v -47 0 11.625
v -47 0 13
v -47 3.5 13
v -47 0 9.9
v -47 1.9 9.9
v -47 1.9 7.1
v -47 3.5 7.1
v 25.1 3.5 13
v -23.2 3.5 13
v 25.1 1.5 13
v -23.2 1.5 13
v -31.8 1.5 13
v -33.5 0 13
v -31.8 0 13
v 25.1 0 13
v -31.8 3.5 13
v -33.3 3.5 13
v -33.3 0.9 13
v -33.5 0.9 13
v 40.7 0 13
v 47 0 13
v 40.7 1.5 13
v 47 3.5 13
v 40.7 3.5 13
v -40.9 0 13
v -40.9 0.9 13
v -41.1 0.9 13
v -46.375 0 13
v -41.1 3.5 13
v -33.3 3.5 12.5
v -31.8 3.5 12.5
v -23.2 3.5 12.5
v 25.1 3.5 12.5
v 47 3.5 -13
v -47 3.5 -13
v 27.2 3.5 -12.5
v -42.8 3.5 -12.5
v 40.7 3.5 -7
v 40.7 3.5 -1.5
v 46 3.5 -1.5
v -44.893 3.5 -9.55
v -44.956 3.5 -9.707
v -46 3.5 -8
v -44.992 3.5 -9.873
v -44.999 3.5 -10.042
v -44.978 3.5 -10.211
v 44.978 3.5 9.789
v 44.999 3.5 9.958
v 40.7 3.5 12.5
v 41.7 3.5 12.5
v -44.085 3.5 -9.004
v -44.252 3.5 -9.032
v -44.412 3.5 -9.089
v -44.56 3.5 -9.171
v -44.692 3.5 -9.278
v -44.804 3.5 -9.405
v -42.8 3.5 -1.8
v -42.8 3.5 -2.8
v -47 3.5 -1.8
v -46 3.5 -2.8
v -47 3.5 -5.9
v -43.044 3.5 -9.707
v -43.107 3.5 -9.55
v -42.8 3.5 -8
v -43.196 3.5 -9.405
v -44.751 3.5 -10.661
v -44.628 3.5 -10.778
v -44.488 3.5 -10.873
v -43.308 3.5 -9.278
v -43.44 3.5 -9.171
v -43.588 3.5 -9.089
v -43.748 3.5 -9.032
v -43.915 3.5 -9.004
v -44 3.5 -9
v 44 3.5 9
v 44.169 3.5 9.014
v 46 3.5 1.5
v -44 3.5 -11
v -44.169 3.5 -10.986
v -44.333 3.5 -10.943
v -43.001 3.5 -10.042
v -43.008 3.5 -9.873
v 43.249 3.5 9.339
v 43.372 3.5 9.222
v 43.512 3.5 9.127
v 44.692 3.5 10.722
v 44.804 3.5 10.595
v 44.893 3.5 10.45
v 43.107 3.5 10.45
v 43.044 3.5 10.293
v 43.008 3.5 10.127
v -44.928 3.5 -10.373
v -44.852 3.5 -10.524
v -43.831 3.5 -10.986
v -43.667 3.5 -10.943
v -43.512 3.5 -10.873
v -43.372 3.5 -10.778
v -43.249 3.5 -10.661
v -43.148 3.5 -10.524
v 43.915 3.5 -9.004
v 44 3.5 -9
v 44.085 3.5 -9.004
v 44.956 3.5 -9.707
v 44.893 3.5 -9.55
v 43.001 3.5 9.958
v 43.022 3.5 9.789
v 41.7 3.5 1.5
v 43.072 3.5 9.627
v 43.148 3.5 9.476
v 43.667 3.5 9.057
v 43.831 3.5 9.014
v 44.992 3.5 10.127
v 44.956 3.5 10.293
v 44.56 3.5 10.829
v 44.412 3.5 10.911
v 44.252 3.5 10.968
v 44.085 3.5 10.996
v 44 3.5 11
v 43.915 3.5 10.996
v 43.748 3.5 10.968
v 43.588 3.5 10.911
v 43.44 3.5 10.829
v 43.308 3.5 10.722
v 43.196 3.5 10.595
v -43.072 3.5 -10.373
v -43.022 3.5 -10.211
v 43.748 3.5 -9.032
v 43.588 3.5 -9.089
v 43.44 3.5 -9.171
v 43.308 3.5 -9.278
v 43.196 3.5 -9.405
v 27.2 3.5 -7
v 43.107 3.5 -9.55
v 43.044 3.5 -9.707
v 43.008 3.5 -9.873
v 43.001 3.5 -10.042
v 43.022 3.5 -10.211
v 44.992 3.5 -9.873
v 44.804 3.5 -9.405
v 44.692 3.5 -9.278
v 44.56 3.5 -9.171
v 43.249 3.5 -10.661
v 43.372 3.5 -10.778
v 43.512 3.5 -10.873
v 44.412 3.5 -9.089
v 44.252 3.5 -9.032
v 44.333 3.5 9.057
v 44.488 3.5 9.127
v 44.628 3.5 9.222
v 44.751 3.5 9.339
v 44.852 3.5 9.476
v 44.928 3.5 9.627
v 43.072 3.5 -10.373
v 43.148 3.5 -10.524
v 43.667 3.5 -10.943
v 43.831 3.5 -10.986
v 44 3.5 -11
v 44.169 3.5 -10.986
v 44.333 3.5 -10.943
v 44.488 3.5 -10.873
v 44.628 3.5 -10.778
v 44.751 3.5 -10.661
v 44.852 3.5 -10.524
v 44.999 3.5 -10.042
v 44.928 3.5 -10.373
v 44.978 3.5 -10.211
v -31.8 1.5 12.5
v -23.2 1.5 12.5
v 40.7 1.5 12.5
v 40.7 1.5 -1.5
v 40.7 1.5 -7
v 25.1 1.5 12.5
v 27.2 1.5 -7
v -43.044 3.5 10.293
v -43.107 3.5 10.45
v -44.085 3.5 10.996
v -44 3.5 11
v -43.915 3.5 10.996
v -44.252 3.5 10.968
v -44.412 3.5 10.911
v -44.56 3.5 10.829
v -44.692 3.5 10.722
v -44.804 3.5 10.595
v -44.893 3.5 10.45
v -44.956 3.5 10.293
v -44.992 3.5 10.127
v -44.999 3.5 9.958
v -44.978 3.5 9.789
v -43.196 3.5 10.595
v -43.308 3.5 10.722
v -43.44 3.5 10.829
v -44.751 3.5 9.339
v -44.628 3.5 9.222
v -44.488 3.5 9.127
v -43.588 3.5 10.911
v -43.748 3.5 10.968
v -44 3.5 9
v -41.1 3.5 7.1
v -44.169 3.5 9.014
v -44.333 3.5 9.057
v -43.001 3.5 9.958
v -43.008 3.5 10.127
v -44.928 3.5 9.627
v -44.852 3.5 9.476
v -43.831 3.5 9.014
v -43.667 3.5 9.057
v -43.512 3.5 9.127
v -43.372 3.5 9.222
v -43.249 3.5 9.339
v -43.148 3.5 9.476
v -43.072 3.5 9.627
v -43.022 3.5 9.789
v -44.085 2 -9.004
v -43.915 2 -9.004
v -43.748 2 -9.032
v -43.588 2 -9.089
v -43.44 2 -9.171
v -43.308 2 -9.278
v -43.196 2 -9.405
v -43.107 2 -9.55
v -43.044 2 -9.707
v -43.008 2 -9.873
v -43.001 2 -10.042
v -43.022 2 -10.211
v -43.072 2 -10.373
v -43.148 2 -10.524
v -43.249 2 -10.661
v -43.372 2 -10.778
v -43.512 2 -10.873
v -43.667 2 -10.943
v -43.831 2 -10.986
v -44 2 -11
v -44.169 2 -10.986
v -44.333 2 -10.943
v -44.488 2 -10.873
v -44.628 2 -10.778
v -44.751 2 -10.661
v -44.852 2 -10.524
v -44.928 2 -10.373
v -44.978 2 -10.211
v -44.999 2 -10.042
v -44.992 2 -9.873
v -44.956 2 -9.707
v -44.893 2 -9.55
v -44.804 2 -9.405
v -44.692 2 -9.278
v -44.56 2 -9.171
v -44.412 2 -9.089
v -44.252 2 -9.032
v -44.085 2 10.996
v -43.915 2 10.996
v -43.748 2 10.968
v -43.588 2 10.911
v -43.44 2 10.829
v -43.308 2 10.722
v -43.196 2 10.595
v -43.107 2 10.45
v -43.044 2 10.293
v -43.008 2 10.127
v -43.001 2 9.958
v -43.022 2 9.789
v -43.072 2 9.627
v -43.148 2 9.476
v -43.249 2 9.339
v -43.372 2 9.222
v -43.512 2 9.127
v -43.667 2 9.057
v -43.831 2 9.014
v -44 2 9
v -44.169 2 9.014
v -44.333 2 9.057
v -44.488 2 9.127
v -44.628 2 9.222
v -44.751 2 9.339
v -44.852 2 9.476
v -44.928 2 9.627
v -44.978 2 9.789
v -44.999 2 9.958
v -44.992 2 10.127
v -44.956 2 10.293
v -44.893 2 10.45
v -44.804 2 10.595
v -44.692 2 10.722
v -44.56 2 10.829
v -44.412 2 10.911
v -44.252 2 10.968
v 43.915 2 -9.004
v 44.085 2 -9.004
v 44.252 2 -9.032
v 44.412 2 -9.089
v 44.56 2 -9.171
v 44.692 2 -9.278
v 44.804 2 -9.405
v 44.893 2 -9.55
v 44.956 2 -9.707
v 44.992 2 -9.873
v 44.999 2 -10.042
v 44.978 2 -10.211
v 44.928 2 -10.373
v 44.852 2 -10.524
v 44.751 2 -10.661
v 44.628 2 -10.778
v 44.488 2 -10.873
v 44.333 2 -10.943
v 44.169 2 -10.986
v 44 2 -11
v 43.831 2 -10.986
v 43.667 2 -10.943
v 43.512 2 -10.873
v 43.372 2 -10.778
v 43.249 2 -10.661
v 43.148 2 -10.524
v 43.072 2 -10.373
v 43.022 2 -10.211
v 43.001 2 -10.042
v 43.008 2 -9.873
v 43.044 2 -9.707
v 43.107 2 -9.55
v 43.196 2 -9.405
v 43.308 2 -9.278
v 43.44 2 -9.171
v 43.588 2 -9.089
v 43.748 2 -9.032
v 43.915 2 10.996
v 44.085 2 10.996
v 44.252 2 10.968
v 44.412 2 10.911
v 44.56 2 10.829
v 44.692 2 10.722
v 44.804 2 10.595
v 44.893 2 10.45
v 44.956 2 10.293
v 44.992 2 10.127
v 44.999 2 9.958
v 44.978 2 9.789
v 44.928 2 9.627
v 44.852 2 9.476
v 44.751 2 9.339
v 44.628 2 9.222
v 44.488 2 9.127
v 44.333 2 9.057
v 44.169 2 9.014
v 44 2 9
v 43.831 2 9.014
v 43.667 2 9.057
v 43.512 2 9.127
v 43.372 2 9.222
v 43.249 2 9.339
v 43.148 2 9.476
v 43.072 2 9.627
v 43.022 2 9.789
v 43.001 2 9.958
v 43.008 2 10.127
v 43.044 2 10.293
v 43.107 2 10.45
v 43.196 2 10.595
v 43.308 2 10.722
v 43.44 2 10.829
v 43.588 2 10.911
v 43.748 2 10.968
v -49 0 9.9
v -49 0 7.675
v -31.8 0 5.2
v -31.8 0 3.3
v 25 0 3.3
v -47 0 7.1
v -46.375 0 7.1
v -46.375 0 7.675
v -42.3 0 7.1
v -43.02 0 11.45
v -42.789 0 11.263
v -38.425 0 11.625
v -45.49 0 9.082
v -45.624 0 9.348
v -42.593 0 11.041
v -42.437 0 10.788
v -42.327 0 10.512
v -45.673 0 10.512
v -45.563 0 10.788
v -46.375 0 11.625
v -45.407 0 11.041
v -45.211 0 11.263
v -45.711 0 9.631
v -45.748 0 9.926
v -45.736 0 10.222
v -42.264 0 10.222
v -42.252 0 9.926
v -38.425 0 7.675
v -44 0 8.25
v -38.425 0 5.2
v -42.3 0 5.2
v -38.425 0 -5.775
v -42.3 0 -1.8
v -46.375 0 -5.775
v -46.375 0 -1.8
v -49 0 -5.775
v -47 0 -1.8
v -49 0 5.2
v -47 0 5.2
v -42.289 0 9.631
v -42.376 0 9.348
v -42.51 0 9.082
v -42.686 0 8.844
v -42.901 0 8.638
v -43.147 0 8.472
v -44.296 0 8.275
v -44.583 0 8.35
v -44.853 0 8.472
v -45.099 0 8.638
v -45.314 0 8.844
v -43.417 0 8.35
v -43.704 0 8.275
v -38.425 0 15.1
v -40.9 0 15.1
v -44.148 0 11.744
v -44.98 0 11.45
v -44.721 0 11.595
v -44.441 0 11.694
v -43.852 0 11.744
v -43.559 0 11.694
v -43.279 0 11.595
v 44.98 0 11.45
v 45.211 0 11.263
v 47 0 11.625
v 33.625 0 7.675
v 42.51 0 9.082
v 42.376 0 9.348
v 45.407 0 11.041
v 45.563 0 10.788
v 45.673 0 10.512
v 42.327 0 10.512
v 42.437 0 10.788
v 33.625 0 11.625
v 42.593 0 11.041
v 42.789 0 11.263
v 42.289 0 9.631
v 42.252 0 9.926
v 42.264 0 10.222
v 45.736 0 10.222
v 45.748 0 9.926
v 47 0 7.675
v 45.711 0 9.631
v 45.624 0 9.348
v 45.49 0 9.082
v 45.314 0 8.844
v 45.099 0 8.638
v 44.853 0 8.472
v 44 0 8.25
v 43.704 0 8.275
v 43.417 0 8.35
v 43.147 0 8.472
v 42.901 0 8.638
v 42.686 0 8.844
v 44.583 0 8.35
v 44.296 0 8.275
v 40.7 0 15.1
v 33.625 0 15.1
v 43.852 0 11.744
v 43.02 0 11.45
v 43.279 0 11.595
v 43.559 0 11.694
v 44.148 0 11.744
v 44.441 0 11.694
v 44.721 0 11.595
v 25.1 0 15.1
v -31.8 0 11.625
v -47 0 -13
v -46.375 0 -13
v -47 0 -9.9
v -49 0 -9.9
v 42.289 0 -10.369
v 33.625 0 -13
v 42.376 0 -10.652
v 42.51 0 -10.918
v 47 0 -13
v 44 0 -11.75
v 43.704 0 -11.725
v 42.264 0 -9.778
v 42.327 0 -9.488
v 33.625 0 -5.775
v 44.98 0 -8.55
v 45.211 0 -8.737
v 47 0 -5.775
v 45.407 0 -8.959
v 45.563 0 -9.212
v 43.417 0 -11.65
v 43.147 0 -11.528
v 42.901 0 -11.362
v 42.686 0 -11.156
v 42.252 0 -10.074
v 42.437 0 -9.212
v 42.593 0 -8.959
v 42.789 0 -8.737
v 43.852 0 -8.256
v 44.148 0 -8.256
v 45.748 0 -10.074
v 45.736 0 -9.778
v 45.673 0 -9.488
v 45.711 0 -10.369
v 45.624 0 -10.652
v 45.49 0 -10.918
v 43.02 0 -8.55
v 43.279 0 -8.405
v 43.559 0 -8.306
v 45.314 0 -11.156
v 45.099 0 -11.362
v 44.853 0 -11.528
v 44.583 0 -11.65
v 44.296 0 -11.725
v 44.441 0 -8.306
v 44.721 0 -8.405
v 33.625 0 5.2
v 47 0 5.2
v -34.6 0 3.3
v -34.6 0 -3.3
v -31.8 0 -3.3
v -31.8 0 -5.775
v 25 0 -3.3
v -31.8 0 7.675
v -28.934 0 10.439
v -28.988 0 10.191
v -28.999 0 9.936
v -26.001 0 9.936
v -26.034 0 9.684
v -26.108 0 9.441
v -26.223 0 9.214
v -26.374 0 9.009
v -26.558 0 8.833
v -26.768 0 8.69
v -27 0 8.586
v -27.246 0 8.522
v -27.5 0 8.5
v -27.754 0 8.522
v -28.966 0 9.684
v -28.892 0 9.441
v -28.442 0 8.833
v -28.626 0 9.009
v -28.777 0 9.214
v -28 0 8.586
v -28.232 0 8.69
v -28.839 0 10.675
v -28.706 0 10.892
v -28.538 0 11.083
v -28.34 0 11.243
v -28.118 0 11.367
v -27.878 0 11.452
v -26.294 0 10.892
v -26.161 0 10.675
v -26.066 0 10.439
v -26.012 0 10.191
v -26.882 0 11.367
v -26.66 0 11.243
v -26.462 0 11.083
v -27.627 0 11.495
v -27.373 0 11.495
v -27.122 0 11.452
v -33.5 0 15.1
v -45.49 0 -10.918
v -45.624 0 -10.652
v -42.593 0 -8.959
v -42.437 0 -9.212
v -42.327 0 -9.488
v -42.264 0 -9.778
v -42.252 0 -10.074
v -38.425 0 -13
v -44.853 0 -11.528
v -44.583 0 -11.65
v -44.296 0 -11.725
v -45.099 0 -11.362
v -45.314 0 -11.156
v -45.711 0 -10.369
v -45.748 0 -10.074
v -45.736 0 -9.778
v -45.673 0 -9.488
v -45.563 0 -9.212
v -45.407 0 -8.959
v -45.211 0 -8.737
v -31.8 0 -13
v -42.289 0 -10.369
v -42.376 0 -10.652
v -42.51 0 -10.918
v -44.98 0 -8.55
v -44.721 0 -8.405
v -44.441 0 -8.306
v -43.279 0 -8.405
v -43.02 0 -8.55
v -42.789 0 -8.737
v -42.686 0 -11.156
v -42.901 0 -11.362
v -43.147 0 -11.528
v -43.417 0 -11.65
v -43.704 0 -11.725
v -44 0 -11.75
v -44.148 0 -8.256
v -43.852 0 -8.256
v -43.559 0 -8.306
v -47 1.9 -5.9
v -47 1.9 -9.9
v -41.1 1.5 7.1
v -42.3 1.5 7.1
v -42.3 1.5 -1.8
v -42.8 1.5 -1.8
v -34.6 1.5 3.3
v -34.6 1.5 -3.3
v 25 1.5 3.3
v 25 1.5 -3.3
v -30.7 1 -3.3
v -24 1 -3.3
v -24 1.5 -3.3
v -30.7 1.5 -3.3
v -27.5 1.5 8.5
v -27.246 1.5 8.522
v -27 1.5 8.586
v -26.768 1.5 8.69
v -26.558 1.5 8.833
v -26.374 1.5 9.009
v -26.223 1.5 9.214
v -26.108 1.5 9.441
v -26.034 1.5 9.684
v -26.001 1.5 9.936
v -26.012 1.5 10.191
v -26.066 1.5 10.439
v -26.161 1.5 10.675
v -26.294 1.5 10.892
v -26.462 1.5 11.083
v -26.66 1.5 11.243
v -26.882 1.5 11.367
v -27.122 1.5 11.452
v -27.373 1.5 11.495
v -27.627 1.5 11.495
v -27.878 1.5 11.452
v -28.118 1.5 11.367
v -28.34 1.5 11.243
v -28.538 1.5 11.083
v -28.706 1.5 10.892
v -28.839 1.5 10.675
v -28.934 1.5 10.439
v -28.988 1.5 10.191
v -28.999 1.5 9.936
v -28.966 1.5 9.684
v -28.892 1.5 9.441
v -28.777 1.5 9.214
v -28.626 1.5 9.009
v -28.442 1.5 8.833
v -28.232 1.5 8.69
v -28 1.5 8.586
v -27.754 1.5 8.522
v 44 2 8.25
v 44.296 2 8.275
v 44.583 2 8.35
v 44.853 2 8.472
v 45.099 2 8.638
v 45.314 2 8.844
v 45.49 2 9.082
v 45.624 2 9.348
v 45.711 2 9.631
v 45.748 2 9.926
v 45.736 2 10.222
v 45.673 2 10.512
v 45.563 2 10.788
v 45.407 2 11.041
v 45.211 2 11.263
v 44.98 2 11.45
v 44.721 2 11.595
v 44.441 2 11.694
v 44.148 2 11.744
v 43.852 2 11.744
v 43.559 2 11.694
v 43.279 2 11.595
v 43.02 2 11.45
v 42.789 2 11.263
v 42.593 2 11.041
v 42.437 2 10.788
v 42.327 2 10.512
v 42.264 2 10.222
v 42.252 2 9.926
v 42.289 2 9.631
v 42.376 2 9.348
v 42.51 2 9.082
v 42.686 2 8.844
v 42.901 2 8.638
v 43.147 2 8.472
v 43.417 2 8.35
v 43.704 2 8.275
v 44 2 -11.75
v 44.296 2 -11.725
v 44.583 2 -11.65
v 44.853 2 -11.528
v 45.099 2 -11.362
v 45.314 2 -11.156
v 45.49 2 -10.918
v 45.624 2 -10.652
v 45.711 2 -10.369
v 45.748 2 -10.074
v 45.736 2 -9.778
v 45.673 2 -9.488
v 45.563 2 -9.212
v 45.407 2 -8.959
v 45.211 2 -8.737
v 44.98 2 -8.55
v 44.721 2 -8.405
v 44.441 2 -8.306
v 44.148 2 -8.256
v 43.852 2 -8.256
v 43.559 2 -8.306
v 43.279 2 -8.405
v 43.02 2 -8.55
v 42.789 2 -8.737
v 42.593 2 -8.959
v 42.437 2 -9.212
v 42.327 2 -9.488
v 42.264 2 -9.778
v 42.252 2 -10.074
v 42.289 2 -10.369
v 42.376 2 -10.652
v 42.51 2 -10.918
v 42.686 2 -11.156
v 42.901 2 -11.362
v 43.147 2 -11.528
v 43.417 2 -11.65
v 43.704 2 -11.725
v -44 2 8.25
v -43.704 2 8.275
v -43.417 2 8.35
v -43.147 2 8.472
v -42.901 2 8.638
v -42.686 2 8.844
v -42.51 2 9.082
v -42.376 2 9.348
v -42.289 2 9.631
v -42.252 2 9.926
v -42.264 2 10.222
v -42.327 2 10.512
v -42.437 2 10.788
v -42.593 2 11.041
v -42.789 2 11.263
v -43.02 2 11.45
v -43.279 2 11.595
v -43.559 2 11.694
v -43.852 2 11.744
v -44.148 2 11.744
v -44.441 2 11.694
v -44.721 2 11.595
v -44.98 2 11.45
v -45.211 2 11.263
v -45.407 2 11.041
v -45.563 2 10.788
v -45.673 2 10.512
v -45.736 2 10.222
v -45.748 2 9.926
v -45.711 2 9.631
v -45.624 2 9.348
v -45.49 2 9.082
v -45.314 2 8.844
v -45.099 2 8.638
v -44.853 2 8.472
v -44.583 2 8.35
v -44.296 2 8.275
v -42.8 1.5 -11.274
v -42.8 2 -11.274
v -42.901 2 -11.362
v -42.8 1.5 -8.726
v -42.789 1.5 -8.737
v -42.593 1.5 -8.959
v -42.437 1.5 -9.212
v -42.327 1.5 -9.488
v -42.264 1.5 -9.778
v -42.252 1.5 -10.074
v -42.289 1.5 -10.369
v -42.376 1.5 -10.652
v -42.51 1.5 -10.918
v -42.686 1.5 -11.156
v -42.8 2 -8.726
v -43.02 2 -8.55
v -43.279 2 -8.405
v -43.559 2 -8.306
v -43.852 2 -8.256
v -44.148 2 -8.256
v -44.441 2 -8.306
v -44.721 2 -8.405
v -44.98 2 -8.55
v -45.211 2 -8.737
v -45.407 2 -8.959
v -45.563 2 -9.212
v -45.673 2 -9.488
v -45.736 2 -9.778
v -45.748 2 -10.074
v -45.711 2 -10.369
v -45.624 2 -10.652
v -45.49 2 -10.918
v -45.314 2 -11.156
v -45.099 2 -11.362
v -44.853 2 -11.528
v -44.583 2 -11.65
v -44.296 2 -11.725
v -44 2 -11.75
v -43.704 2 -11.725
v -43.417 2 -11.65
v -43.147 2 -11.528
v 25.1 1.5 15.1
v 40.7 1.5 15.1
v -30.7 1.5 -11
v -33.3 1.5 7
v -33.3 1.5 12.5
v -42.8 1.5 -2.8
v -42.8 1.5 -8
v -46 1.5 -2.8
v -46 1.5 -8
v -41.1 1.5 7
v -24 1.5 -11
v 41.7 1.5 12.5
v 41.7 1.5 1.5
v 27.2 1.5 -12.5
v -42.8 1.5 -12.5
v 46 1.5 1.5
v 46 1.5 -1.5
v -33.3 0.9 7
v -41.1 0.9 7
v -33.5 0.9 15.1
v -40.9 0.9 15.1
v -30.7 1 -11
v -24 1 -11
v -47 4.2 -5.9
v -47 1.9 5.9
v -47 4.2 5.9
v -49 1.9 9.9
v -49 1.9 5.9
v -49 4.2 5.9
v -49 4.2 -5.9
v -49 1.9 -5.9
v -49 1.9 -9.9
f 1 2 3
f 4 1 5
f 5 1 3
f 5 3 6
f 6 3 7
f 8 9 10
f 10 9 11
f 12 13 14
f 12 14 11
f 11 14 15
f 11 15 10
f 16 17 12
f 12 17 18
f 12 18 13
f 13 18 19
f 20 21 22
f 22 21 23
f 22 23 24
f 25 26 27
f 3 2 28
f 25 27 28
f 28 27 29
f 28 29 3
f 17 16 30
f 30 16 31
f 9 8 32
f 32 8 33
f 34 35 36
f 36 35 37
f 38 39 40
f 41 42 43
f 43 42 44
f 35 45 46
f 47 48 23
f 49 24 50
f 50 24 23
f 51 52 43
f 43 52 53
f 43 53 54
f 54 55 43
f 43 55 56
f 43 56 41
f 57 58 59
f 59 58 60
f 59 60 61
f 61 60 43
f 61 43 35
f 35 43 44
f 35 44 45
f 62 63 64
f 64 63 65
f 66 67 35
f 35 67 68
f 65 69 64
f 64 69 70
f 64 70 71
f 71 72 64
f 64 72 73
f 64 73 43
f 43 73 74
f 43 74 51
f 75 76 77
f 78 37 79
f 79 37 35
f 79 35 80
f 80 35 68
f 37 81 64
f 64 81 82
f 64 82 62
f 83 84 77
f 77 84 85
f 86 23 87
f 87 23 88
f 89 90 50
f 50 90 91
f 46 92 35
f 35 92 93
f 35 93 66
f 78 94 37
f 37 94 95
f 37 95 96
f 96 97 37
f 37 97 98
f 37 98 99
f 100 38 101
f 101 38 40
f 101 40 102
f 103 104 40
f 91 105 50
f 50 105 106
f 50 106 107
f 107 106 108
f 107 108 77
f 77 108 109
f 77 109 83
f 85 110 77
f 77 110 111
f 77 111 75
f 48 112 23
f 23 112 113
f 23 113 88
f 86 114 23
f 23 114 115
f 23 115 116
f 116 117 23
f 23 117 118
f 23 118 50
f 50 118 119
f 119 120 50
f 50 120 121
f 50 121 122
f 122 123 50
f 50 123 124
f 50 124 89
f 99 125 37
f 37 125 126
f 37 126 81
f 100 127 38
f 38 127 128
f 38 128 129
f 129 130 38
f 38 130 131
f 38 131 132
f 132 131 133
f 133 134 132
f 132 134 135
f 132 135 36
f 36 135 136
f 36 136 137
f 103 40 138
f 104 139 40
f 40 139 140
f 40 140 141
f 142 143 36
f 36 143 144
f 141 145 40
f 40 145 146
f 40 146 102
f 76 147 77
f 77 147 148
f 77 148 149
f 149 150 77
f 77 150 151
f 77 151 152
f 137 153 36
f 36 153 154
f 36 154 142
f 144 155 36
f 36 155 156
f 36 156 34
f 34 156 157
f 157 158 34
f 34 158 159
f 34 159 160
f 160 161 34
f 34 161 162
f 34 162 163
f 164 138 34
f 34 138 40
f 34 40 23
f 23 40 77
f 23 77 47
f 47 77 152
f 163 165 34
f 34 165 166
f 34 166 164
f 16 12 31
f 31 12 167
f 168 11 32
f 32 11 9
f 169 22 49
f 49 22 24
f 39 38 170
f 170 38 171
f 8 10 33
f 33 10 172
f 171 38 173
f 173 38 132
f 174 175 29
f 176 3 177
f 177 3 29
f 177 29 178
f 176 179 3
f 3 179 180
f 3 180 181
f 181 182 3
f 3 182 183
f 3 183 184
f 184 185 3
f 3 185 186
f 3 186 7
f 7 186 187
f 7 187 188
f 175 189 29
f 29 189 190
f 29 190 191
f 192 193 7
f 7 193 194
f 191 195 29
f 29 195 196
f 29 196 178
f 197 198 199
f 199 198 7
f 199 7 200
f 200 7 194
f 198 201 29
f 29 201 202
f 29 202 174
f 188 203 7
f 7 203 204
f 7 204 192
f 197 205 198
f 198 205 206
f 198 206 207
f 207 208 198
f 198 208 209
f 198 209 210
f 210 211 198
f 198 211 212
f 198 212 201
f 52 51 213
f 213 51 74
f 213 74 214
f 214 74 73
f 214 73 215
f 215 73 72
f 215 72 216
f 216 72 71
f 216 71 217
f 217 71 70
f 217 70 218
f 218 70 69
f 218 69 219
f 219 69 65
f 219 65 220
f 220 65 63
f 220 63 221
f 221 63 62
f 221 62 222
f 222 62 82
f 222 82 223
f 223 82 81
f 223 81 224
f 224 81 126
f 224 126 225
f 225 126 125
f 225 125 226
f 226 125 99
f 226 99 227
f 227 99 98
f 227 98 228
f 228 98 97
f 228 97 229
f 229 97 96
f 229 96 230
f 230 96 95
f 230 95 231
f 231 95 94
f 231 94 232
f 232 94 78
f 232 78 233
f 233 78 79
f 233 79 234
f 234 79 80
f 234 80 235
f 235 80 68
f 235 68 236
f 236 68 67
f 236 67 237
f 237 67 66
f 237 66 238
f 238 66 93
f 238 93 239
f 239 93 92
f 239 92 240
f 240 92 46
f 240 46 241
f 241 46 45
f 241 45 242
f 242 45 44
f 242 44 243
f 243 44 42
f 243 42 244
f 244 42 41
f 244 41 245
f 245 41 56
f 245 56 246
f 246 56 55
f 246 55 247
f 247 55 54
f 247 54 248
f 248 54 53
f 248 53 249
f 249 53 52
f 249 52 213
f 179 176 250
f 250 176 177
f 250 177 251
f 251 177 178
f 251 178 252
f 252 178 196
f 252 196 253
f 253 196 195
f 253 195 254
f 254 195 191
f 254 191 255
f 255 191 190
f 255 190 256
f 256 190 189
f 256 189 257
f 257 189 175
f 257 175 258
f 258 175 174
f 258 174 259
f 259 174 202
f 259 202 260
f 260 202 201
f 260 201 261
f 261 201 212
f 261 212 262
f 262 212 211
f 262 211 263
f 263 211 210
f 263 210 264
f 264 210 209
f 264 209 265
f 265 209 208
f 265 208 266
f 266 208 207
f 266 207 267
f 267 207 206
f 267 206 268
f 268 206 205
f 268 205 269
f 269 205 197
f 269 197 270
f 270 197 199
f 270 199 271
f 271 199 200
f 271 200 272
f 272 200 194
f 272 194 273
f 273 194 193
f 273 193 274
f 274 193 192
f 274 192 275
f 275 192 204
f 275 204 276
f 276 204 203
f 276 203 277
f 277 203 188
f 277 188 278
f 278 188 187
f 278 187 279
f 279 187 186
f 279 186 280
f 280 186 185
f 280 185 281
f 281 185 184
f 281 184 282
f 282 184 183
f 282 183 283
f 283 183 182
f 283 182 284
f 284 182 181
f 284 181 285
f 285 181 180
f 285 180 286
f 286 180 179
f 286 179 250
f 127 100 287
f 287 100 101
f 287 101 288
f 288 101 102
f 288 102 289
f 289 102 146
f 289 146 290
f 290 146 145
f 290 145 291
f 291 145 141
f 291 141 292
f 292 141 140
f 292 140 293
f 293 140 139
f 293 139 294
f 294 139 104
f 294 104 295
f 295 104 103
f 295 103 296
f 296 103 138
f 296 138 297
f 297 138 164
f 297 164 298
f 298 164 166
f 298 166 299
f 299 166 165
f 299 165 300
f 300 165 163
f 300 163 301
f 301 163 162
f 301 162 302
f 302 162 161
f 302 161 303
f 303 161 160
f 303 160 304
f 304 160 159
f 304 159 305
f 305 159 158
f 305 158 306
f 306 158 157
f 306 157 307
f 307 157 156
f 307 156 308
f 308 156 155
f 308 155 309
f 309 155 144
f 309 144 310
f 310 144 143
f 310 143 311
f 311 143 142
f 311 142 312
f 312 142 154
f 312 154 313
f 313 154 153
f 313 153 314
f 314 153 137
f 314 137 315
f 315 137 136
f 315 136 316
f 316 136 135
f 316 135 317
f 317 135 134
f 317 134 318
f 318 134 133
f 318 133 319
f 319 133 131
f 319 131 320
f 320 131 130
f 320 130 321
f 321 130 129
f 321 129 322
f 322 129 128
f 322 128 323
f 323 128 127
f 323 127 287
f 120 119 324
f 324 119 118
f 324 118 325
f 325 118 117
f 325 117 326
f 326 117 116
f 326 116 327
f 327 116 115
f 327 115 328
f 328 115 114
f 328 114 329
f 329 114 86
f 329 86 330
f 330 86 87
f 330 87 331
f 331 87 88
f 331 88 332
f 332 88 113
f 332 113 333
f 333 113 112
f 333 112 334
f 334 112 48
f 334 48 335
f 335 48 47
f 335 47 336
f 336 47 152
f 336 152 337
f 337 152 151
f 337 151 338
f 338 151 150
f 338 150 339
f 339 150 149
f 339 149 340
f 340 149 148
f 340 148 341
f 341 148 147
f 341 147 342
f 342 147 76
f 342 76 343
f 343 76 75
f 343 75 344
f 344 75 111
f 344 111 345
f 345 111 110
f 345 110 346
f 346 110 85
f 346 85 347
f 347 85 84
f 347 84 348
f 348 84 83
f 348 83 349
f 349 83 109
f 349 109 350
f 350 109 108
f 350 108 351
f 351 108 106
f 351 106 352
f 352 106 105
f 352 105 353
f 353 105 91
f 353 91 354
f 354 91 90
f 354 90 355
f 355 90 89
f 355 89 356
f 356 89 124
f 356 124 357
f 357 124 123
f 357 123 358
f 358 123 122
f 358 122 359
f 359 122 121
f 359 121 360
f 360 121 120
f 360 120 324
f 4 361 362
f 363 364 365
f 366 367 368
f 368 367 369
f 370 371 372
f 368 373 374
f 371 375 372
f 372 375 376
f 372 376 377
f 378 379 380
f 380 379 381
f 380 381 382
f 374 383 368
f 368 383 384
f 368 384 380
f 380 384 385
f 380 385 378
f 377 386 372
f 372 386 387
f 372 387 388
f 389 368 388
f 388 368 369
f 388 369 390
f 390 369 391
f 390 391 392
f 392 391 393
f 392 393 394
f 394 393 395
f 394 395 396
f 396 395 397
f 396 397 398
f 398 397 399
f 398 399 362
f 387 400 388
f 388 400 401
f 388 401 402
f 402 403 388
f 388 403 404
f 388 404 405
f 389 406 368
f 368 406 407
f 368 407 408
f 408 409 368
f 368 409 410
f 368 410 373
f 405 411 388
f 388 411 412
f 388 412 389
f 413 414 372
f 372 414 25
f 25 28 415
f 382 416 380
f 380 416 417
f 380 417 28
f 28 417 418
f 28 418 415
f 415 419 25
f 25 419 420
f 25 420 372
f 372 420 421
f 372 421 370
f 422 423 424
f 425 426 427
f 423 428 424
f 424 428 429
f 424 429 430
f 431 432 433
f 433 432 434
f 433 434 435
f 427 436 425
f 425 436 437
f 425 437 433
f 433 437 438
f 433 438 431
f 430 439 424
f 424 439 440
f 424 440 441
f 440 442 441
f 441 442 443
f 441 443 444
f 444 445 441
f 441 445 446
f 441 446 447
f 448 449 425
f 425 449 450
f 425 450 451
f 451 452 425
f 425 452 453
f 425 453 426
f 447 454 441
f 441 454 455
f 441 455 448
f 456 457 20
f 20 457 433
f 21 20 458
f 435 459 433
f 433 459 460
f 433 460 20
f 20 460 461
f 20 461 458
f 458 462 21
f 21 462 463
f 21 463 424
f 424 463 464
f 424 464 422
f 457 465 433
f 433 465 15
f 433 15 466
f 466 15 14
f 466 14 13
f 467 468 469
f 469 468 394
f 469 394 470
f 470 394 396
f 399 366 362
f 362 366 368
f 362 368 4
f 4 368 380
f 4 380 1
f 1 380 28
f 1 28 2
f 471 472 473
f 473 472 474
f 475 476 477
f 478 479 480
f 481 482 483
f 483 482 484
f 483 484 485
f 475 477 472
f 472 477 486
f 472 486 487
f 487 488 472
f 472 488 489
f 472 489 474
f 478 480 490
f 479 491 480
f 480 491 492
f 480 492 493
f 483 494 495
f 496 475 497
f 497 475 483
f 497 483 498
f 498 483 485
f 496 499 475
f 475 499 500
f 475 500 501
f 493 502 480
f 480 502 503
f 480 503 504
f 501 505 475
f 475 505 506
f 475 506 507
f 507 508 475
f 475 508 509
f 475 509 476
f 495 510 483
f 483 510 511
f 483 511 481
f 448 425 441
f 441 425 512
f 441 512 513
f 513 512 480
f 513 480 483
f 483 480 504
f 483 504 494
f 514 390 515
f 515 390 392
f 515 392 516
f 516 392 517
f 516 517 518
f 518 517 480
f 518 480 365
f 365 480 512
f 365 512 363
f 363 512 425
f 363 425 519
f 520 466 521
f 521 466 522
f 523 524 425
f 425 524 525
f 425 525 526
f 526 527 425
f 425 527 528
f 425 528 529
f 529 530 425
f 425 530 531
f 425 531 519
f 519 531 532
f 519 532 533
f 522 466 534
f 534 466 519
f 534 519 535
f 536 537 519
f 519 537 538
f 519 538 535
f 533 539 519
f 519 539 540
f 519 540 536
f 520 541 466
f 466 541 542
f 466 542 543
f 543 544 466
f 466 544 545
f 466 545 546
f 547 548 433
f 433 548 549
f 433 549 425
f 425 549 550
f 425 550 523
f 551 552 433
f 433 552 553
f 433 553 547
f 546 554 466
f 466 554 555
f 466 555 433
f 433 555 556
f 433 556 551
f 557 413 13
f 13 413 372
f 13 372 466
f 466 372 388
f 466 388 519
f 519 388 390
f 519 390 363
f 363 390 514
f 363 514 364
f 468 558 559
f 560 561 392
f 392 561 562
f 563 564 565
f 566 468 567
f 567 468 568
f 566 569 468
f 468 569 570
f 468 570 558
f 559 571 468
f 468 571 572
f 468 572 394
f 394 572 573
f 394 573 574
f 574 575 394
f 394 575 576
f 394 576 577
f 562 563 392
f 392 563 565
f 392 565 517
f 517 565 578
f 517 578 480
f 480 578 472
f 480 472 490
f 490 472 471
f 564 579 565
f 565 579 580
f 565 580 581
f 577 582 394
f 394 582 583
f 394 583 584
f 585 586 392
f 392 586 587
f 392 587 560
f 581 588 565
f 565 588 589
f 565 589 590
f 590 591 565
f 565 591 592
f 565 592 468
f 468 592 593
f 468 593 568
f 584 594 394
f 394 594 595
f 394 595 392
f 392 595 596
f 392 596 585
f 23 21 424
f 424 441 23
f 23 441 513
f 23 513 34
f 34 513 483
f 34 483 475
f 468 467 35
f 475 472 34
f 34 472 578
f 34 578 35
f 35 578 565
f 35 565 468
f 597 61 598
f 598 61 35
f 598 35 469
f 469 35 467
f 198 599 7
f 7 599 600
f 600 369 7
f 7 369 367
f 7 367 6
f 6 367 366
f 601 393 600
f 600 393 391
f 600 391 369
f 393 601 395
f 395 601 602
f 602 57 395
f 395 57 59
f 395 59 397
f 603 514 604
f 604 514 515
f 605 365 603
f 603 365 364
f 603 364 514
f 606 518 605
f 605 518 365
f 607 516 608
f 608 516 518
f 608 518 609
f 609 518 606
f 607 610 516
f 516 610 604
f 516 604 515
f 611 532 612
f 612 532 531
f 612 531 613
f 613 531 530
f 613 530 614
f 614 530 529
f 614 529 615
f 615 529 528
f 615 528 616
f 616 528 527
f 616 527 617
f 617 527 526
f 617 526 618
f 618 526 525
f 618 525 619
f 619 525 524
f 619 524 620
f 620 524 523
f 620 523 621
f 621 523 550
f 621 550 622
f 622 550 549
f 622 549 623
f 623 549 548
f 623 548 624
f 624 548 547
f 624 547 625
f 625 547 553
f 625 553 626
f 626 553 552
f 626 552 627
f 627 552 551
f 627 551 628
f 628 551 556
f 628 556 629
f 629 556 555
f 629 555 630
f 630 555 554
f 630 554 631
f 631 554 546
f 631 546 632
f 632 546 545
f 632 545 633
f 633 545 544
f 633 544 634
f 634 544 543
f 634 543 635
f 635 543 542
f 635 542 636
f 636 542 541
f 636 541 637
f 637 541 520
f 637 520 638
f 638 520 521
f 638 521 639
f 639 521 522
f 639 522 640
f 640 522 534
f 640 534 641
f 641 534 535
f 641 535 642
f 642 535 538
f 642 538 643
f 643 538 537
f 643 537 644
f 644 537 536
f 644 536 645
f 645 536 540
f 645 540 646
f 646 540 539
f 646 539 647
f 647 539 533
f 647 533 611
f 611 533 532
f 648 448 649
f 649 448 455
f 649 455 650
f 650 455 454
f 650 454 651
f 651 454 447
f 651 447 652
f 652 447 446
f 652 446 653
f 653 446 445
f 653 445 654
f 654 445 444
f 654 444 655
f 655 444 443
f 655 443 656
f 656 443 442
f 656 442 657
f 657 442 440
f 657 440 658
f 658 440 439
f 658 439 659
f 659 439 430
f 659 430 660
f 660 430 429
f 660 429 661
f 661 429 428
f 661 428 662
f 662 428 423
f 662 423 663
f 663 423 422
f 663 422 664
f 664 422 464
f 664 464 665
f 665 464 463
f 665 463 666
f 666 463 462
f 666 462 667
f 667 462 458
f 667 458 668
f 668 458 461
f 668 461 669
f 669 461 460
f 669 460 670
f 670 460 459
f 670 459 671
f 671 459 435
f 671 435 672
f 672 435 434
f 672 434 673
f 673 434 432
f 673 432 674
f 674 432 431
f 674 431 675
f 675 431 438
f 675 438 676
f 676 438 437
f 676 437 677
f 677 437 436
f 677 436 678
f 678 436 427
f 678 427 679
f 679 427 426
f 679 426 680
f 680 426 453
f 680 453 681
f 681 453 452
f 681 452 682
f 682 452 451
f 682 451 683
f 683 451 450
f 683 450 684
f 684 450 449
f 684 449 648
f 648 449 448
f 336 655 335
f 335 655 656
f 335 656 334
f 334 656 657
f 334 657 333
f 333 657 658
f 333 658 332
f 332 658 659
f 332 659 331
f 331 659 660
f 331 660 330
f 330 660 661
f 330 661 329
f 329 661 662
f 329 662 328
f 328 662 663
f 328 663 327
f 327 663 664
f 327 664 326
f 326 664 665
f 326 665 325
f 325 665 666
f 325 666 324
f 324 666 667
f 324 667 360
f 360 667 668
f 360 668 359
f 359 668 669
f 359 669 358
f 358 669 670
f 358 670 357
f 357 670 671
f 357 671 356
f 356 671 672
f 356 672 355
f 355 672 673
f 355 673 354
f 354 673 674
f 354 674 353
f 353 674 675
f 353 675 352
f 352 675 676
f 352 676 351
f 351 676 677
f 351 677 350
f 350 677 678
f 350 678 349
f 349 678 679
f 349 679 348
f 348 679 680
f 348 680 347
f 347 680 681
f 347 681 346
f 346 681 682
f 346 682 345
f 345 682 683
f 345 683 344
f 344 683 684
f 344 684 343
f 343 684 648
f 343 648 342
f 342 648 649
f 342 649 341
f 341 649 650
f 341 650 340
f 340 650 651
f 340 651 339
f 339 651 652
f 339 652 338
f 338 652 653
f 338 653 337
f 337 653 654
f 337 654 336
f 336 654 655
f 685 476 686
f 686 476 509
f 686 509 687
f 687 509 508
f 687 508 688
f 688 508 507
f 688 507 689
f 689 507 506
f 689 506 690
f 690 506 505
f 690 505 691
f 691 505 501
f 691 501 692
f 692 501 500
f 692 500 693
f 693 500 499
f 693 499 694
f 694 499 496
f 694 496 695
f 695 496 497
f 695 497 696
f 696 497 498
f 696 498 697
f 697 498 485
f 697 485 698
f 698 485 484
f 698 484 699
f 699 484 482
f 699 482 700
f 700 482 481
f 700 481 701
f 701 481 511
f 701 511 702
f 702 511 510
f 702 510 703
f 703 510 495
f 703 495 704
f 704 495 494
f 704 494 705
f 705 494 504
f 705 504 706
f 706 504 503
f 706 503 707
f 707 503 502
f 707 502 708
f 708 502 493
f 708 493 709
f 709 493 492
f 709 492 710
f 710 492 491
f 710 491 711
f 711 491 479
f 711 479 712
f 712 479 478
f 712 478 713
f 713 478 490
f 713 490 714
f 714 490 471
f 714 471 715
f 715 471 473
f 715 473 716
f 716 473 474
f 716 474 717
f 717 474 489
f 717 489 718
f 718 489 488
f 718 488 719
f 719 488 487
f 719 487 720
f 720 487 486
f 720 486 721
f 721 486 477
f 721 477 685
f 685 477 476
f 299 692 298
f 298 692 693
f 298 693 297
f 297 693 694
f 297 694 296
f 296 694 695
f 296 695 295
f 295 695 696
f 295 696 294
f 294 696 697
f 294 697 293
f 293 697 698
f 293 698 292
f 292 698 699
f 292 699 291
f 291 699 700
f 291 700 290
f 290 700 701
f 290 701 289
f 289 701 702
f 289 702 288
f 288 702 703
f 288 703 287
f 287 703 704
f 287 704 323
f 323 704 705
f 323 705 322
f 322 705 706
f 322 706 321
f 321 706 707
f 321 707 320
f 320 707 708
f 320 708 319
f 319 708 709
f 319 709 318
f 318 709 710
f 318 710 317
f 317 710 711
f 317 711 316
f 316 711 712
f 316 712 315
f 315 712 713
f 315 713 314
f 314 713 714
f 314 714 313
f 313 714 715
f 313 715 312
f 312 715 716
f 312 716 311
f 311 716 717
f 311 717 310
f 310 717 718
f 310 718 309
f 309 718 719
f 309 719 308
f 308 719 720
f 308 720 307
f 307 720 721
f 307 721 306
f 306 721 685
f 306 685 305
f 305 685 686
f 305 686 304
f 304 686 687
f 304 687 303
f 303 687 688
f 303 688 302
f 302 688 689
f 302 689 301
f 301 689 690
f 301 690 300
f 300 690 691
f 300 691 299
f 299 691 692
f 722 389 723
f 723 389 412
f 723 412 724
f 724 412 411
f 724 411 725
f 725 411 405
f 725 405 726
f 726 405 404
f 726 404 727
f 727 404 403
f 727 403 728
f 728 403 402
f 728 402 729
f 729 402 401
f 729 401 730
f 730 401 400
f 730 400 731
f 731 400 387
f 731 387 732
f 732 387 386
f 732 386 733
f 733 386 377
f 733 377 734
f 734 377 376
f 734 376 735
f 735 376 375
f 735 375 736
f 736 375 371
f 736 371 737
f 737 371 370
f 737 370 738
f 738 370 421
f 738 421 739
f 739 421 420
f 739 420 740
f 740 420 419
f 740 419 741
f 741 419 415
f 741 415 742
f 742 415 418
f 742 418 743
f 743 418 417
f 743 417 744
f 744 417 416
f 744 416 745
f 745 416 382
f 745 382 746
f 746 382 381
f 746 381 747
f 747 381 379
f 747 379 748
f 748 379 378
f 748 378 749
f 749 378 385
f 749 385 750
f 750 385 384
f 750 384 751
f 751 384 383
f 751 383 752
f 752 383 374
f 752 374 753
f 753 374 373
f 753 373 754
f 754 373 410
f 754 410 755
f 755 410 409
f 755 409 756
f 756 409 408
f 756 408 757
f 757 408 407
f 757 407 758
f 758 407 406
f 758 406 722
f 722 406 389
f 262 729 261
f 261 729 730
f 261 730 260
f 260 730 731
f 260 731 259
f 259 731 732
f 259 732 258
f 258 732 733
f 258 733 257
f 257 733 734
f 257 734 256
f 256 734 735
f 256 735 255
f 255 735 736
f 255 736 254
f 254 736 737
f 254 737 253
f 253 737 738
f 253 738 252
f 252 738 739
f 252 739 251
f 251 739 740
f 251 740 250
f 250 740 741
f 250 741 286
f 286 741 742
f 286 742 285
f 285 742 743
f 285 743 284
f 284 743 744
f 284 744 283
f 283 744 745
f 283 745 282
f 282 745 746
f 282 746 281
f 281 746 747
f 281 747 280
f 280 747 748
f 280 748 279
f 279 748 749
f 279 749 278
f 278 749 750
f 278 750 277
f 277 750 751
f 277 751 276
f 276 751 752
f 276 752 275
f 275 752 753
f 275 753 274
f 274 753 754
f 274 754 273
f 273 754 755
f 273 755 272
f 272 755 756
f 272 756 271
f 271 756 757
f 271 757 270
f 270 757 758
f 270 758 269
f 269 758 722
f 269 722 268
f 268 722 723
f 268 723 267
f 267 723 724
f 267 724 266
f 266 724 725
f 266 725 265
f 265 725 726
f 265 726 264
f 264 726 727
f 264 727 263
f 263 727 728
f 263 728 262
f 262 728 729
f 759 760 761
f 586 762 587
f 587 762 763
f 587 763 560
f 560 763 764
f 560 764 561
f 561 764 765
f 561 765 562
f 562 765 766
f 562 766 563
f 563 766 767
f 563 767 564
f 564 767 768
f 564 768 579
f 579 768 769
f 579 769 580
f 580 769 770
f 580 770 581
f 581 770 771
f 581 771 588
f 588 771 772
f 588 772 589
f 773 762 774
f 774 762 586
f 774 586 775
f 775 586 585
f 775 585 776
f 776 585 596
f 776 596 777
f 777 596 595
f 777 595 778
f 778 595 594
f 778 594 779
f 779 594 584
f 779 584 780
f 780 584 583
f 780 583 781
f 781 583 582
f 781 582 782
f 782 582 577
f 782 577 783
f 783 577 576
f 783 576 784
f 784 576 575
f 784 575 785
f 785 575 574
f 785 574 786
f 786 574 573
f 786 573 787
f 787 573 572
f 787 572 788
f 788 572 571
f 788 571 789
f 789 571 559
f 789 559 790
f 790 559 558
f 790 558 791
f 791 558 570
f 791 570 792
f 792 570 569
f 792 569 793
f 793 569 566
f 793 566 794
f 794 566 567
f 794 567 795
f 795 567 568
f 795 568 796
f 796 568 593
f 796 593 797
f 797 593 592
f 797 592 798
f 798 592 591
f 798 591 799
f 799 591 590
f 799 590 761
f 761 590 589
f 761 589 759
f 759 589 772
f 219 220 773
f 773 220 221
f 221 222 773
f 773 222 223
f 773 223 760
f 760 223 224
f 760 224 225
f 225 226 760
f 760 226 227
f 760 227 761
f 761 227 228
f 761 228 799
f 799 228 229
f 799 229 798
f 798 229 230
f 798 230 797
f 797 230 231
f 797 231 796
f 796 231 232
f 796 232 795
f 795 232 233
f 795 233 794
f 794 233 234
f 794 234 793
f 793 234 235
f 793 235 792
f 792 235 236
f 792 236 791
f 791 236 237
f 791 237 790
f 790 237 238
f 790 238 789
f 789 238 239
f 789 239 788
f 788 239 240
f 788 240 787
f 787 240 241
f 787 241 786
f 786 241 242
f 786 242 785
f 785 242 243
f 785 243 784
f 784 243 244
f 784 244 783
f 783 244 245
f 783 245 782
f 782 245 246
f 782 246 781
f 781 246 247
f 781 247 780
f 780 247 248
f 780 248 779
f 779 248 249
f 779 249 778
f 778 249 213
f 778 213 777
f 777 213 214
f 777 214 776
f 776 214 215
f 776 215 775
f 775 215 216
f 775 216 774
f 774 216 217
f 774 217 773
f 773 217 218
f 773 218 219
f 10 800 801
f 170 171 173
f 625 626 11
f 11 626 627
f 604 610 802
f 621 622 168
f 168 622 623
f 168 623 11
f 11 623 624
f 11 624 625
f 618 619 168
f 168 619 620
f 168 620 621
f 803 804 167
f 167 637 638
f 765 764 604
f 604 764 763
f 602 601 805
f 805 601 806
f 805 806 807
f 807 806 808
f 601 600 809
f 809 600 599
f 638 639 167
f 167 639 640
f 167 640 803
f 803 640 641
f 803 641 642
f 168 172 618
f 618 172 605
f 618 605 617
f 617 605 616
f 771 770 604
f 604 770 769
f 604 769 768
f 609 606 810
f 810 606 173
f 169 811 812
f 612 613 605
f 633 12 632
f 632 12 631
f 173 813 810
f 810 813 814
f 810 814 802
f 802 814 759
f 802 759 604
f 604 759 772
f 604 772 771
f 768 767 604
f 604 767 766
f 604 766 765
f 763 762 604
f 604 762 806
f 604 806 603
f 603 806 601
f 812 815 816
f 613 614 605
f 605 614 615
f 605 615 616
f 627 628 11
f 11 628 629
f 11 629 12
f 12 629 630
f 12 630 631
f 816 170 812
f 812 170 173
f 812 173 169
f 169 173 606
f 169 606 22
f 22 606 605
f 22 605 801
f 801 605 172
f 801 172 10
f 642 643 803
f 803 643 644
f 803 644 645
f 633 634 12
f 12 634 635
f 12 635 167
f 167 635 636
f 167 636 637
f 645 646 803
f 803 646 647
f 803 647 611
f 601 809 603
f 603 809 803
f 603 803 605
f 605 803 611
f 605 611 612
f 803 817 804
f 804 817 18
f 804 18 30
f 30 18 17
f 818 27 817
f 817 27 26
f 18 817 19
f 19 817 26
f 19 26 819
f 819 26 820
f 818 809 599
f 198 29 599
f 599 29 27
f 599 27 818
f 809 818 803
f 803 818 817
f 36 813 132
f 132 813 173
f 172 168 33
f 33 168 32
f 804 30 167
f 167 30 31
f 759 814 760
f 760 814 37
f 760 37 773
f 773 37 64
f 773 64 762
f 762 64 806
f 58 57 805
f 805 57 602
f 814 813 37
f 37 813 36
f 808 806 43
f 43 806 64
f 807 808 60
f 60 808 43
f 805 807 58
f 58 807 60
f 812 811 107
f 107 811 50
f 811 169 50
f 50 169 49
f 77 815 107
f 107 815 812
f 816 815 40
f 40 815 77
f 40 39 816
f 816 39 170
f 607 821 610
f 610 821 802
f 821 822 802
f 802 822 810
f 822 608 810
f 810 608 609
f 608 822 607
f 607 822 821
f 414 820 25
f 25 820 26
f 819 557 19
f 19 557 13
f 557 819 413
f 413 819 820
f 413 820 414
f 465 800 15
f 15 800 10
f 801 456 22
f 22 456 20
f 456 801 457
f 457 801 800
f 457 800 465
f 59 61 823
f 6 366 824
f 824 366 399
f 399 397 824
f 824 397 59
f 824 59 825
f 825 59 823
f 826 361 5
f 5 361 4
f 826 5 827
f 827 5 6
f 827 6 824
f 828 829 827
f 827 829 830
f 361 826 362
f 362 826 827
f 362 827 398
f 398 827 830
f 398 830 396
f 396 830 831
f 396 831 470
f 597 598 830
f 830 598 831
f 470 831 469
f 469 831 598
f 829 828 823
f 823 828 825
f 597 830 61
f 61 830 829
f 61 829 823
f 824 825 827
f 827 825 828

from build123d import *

# Parameters (mm, degrees)
SKETCH_1_W           = 94
SKETCH_1_H           = 26
SKETCH_1_R           = 1
EXTRUDE_1_DEPTH      = 3.5
SKETCH_2_W           = 4.7
SKETCH_2_H           = 8.9
SKETCH_2_W_2         = 59.6
SKETCH_2_H_2         = 6.6
CUT_EXTRUDE_1_DEPTH  = 49.890183064
SKETCH_3_R           = 1.5
CUT_EXTRUDE_2_DEPTH  = 49.890183064
SKETCH_4_R           = 1.75
CUT_EXTRUDE_3_DEPTH  = 2
SKETCH_5_W           = 7.8
SKETCH_5_H           = 2.6
SKETCH_5_W_2         = 8.6
SKETCH_5_H_2         = 2
CUT_EXTRUDE_4_DEPTH  = 6
SKETCH_5_3_W         = 15.6
SKETCH_5_3_H         = 2
CUT_EXTRUDE_5_DEPTH  = 20
SKETCH_6_W           = 70
SKETCH_6_H           = 19.6
SKETCH_6_W_2         = 18.8
SKETCH_6_H_2         = 3
SKETCH_6_W_3         = 82.8
SKETCH_6_H_3         = 11
SKETCH_6_W_4         = 3.2
SKETCH_6_H_4         = 5.2
CUT_EXTRUDE_12_DEPTH = 2
SKETCH_7_W           = 6.7
SKETCH_7_H           = 7.7
CUT_EXTRUDE_13_DEPTH = 0.5
SKETCH_8_W           = 7.4
SKETCH_8_H           = 0.9
SKETCH_8_W_2         = 15.6
SKETCH_8_H_2         = 1.5
EXTRUDE_2_DEPTH      = 2.1
SKETCH_10_W          = 19.8
SKETCH_10_H          = 1.9
SKETCH_10_W_2        = 11.8
SKETCH_10_H_2        = 4.2
EXTRUDE_3_DEPTH      = 2


with BuildPart() as part:
    # 草图1 → 凸台-拉伸1 (new body)
    with BuildSketch(Plane(origin=(0, 0, 0), x_dir=(1, 0, 0), z_dir=(0, 1, 0))):
        Rectangle(SKETCH_1_W, SKETCH_1_H)
        with Locations(Location((-44, 10, 0), (0, 0, 270))):
            Circle(SKETCH_1_R, mode=Mode.SUBTRACT)
        with Locations(Location((-44, -10, 0), (0, 0, 270))):
            Circle(SKETCH_1_R, mode=Mode.SUBTRACT)
        with Locations(Location((44, 10, 0), (0, 0, 270))):
            Circle(SKETCH_1_R, mode=Mode.SUBTRACT)
        with Locations(Location((44, -10, 0), (0, 0, 270))):
            Circle(SKETCH_1_R, mode=Mode.SUBTRACT)
    extrude(amount=EXTRUDE_1_DEPTH)

    # 草图2 → 切除-拉伸1 (cut, through all)
    with BuildSketch(Plane.XZ):
        with Locations((-44.65, 2.65)):
            Rectangle(SKETCH_2_W, SKETCH_2_H)
        with Locations((-4.8, 0)):
            Rectangle(SKETCH_2_W_2, SKETCH_2_H_2)
    extrude(amount=-CUT_EXTRUDE_1_DEPTH, mode=Mode.SUBTRACT)

    # 草图3 → 切除-拉伸2 (cut, through all)
    with BuildSketch(Plane(origin=(0, 0, 0), x_dir=(-1, 0, 0), z_dir=(0, -1, 0))):
        with Locations(Location((27.5, -10, 0), (0, 0, 90))):
            Circle(SKETCH_3_R)
    extrude(amount=-CUT_EXTRUDE_2_DEPTH, mode=Mode.SUBTRACT)

    # 草图4 → 切除-拉伸3 (cut)
    with BuildSketch(Plane.XZ):
        with Locations(Location((-44, 10, 0), (0, 0, 270))):
            Circle(SKETCH_4_R)
        with Locations(Location((-44, -10, 0), (0, 0, 270))):
            Circle(SKETCH_4_R)
        with Locations(Location((44, 10, 0), (0, 0, 270))):
            Circle(SKETCH_4_R)
        with Locations(Location((44, -10, 0), (0, 0, 270))):
            Circle(SKETCH_4_R)
    extrude(amount=-CUT_EXTRUDE_3_DEPTH, mode=Mode.SUBTRACT)

    # 草图5 → 切除-拉伸4 (cut)
    with BuildSketch(Plane.XY.offset(13)):
        with Locations((-37.2, 2.2)):
            Rectangle(SKETCH_5_W, SKETCH_5_H)
        with Locations((-27.5, 2.5)):
            Rectangle(SKETCH_5_W_2, SKETCH_5_H_2)
    extrude(amount=-CUT_EXTRUDE_4_DEPTH, mode=Mode.SUBTRACT)

    # 草图5<3> → 切除-拉伸5 (cut)
    with BuildSketch(Plane.XY.offset(13)):
        with Locations((32.9, 2.5)):
            Rectangle(SKETCH_5_3_W, SKETCH_5_3_H)
    extrude(amount=-CUT_EXTRUDE_5_DEPTH, mode=Mode.SUBTRACT)

    # 草图6 → 切除-拉伸12 (cut)
    with BuildSketch(Plane(origin=(0, 3.5, 0), x_dir=(1, 0, 0), z_dir=(0, 1, 0))):
        with Locations((-7.8, 2.7)):
            Rectangle(SKETCH_6_W, SKETCH_6_H)
        with Locations((36.6, 0)):
            Rectangle(SKETCH_6_W_2, SKETCH_6_H_2)
        with Locations((0.3, -7)):
            Rectangle(SKETCH_6_W_3, SKETCH_6_H_3)
        with Locations((-44.4, 5.4)):
            Rectangle(SKETCH_6_W_4, SKETCH_6_H_4)
    extrude(amount=-CUT_EXTRUDE_12_DEPTH, mode=Mode.SUBTRACT)

    # 草图7 → 切除-拉伸13 (cut)
    with BuildSketch(Plane(origin=(0, 1.5, 0), x_dir=(1, 0, 0), z_dir=(0, 1, 0))):
        with Locations((-27.35, 7.15)):
            Rectangle(SKETCH_7_W, SKETCH_7_H)
    extrude(amount=-CUT_EXTRUDE_13_DEPTH, mode=Mode.SUBTRACT)

    # 草图8 → 凸台-拉伸2 (add)
    with BuildSketch(Plane.XY.offset(13)):
        with Locations((-37.2, 0.45)):
            Rectangle(SKETCH_8_W, SKETCH_8_H)
        with Locations((32.9, 0.75)):
            Rectangle(SKETCH_8_W_2, SKETCH_8_H_2)
    extrude(amount=EXTRUDE_2_DEPTH)

    # 草图10 → 凸台-拉伸3 (add)
    with BuildSketch(Plane.ZY.offset(47)):
        with Locations((0, 0.95)):
            Rectangle(SKETCH_10_W, SKETCH_10_H)
        with Locations((0, 2.1)):
            Rectangle(SKETCH_10_W_2, SKETCH_10_H_2)
    extrude(amount=EXTRUDE_3_DEPTH)


solid = part.part
